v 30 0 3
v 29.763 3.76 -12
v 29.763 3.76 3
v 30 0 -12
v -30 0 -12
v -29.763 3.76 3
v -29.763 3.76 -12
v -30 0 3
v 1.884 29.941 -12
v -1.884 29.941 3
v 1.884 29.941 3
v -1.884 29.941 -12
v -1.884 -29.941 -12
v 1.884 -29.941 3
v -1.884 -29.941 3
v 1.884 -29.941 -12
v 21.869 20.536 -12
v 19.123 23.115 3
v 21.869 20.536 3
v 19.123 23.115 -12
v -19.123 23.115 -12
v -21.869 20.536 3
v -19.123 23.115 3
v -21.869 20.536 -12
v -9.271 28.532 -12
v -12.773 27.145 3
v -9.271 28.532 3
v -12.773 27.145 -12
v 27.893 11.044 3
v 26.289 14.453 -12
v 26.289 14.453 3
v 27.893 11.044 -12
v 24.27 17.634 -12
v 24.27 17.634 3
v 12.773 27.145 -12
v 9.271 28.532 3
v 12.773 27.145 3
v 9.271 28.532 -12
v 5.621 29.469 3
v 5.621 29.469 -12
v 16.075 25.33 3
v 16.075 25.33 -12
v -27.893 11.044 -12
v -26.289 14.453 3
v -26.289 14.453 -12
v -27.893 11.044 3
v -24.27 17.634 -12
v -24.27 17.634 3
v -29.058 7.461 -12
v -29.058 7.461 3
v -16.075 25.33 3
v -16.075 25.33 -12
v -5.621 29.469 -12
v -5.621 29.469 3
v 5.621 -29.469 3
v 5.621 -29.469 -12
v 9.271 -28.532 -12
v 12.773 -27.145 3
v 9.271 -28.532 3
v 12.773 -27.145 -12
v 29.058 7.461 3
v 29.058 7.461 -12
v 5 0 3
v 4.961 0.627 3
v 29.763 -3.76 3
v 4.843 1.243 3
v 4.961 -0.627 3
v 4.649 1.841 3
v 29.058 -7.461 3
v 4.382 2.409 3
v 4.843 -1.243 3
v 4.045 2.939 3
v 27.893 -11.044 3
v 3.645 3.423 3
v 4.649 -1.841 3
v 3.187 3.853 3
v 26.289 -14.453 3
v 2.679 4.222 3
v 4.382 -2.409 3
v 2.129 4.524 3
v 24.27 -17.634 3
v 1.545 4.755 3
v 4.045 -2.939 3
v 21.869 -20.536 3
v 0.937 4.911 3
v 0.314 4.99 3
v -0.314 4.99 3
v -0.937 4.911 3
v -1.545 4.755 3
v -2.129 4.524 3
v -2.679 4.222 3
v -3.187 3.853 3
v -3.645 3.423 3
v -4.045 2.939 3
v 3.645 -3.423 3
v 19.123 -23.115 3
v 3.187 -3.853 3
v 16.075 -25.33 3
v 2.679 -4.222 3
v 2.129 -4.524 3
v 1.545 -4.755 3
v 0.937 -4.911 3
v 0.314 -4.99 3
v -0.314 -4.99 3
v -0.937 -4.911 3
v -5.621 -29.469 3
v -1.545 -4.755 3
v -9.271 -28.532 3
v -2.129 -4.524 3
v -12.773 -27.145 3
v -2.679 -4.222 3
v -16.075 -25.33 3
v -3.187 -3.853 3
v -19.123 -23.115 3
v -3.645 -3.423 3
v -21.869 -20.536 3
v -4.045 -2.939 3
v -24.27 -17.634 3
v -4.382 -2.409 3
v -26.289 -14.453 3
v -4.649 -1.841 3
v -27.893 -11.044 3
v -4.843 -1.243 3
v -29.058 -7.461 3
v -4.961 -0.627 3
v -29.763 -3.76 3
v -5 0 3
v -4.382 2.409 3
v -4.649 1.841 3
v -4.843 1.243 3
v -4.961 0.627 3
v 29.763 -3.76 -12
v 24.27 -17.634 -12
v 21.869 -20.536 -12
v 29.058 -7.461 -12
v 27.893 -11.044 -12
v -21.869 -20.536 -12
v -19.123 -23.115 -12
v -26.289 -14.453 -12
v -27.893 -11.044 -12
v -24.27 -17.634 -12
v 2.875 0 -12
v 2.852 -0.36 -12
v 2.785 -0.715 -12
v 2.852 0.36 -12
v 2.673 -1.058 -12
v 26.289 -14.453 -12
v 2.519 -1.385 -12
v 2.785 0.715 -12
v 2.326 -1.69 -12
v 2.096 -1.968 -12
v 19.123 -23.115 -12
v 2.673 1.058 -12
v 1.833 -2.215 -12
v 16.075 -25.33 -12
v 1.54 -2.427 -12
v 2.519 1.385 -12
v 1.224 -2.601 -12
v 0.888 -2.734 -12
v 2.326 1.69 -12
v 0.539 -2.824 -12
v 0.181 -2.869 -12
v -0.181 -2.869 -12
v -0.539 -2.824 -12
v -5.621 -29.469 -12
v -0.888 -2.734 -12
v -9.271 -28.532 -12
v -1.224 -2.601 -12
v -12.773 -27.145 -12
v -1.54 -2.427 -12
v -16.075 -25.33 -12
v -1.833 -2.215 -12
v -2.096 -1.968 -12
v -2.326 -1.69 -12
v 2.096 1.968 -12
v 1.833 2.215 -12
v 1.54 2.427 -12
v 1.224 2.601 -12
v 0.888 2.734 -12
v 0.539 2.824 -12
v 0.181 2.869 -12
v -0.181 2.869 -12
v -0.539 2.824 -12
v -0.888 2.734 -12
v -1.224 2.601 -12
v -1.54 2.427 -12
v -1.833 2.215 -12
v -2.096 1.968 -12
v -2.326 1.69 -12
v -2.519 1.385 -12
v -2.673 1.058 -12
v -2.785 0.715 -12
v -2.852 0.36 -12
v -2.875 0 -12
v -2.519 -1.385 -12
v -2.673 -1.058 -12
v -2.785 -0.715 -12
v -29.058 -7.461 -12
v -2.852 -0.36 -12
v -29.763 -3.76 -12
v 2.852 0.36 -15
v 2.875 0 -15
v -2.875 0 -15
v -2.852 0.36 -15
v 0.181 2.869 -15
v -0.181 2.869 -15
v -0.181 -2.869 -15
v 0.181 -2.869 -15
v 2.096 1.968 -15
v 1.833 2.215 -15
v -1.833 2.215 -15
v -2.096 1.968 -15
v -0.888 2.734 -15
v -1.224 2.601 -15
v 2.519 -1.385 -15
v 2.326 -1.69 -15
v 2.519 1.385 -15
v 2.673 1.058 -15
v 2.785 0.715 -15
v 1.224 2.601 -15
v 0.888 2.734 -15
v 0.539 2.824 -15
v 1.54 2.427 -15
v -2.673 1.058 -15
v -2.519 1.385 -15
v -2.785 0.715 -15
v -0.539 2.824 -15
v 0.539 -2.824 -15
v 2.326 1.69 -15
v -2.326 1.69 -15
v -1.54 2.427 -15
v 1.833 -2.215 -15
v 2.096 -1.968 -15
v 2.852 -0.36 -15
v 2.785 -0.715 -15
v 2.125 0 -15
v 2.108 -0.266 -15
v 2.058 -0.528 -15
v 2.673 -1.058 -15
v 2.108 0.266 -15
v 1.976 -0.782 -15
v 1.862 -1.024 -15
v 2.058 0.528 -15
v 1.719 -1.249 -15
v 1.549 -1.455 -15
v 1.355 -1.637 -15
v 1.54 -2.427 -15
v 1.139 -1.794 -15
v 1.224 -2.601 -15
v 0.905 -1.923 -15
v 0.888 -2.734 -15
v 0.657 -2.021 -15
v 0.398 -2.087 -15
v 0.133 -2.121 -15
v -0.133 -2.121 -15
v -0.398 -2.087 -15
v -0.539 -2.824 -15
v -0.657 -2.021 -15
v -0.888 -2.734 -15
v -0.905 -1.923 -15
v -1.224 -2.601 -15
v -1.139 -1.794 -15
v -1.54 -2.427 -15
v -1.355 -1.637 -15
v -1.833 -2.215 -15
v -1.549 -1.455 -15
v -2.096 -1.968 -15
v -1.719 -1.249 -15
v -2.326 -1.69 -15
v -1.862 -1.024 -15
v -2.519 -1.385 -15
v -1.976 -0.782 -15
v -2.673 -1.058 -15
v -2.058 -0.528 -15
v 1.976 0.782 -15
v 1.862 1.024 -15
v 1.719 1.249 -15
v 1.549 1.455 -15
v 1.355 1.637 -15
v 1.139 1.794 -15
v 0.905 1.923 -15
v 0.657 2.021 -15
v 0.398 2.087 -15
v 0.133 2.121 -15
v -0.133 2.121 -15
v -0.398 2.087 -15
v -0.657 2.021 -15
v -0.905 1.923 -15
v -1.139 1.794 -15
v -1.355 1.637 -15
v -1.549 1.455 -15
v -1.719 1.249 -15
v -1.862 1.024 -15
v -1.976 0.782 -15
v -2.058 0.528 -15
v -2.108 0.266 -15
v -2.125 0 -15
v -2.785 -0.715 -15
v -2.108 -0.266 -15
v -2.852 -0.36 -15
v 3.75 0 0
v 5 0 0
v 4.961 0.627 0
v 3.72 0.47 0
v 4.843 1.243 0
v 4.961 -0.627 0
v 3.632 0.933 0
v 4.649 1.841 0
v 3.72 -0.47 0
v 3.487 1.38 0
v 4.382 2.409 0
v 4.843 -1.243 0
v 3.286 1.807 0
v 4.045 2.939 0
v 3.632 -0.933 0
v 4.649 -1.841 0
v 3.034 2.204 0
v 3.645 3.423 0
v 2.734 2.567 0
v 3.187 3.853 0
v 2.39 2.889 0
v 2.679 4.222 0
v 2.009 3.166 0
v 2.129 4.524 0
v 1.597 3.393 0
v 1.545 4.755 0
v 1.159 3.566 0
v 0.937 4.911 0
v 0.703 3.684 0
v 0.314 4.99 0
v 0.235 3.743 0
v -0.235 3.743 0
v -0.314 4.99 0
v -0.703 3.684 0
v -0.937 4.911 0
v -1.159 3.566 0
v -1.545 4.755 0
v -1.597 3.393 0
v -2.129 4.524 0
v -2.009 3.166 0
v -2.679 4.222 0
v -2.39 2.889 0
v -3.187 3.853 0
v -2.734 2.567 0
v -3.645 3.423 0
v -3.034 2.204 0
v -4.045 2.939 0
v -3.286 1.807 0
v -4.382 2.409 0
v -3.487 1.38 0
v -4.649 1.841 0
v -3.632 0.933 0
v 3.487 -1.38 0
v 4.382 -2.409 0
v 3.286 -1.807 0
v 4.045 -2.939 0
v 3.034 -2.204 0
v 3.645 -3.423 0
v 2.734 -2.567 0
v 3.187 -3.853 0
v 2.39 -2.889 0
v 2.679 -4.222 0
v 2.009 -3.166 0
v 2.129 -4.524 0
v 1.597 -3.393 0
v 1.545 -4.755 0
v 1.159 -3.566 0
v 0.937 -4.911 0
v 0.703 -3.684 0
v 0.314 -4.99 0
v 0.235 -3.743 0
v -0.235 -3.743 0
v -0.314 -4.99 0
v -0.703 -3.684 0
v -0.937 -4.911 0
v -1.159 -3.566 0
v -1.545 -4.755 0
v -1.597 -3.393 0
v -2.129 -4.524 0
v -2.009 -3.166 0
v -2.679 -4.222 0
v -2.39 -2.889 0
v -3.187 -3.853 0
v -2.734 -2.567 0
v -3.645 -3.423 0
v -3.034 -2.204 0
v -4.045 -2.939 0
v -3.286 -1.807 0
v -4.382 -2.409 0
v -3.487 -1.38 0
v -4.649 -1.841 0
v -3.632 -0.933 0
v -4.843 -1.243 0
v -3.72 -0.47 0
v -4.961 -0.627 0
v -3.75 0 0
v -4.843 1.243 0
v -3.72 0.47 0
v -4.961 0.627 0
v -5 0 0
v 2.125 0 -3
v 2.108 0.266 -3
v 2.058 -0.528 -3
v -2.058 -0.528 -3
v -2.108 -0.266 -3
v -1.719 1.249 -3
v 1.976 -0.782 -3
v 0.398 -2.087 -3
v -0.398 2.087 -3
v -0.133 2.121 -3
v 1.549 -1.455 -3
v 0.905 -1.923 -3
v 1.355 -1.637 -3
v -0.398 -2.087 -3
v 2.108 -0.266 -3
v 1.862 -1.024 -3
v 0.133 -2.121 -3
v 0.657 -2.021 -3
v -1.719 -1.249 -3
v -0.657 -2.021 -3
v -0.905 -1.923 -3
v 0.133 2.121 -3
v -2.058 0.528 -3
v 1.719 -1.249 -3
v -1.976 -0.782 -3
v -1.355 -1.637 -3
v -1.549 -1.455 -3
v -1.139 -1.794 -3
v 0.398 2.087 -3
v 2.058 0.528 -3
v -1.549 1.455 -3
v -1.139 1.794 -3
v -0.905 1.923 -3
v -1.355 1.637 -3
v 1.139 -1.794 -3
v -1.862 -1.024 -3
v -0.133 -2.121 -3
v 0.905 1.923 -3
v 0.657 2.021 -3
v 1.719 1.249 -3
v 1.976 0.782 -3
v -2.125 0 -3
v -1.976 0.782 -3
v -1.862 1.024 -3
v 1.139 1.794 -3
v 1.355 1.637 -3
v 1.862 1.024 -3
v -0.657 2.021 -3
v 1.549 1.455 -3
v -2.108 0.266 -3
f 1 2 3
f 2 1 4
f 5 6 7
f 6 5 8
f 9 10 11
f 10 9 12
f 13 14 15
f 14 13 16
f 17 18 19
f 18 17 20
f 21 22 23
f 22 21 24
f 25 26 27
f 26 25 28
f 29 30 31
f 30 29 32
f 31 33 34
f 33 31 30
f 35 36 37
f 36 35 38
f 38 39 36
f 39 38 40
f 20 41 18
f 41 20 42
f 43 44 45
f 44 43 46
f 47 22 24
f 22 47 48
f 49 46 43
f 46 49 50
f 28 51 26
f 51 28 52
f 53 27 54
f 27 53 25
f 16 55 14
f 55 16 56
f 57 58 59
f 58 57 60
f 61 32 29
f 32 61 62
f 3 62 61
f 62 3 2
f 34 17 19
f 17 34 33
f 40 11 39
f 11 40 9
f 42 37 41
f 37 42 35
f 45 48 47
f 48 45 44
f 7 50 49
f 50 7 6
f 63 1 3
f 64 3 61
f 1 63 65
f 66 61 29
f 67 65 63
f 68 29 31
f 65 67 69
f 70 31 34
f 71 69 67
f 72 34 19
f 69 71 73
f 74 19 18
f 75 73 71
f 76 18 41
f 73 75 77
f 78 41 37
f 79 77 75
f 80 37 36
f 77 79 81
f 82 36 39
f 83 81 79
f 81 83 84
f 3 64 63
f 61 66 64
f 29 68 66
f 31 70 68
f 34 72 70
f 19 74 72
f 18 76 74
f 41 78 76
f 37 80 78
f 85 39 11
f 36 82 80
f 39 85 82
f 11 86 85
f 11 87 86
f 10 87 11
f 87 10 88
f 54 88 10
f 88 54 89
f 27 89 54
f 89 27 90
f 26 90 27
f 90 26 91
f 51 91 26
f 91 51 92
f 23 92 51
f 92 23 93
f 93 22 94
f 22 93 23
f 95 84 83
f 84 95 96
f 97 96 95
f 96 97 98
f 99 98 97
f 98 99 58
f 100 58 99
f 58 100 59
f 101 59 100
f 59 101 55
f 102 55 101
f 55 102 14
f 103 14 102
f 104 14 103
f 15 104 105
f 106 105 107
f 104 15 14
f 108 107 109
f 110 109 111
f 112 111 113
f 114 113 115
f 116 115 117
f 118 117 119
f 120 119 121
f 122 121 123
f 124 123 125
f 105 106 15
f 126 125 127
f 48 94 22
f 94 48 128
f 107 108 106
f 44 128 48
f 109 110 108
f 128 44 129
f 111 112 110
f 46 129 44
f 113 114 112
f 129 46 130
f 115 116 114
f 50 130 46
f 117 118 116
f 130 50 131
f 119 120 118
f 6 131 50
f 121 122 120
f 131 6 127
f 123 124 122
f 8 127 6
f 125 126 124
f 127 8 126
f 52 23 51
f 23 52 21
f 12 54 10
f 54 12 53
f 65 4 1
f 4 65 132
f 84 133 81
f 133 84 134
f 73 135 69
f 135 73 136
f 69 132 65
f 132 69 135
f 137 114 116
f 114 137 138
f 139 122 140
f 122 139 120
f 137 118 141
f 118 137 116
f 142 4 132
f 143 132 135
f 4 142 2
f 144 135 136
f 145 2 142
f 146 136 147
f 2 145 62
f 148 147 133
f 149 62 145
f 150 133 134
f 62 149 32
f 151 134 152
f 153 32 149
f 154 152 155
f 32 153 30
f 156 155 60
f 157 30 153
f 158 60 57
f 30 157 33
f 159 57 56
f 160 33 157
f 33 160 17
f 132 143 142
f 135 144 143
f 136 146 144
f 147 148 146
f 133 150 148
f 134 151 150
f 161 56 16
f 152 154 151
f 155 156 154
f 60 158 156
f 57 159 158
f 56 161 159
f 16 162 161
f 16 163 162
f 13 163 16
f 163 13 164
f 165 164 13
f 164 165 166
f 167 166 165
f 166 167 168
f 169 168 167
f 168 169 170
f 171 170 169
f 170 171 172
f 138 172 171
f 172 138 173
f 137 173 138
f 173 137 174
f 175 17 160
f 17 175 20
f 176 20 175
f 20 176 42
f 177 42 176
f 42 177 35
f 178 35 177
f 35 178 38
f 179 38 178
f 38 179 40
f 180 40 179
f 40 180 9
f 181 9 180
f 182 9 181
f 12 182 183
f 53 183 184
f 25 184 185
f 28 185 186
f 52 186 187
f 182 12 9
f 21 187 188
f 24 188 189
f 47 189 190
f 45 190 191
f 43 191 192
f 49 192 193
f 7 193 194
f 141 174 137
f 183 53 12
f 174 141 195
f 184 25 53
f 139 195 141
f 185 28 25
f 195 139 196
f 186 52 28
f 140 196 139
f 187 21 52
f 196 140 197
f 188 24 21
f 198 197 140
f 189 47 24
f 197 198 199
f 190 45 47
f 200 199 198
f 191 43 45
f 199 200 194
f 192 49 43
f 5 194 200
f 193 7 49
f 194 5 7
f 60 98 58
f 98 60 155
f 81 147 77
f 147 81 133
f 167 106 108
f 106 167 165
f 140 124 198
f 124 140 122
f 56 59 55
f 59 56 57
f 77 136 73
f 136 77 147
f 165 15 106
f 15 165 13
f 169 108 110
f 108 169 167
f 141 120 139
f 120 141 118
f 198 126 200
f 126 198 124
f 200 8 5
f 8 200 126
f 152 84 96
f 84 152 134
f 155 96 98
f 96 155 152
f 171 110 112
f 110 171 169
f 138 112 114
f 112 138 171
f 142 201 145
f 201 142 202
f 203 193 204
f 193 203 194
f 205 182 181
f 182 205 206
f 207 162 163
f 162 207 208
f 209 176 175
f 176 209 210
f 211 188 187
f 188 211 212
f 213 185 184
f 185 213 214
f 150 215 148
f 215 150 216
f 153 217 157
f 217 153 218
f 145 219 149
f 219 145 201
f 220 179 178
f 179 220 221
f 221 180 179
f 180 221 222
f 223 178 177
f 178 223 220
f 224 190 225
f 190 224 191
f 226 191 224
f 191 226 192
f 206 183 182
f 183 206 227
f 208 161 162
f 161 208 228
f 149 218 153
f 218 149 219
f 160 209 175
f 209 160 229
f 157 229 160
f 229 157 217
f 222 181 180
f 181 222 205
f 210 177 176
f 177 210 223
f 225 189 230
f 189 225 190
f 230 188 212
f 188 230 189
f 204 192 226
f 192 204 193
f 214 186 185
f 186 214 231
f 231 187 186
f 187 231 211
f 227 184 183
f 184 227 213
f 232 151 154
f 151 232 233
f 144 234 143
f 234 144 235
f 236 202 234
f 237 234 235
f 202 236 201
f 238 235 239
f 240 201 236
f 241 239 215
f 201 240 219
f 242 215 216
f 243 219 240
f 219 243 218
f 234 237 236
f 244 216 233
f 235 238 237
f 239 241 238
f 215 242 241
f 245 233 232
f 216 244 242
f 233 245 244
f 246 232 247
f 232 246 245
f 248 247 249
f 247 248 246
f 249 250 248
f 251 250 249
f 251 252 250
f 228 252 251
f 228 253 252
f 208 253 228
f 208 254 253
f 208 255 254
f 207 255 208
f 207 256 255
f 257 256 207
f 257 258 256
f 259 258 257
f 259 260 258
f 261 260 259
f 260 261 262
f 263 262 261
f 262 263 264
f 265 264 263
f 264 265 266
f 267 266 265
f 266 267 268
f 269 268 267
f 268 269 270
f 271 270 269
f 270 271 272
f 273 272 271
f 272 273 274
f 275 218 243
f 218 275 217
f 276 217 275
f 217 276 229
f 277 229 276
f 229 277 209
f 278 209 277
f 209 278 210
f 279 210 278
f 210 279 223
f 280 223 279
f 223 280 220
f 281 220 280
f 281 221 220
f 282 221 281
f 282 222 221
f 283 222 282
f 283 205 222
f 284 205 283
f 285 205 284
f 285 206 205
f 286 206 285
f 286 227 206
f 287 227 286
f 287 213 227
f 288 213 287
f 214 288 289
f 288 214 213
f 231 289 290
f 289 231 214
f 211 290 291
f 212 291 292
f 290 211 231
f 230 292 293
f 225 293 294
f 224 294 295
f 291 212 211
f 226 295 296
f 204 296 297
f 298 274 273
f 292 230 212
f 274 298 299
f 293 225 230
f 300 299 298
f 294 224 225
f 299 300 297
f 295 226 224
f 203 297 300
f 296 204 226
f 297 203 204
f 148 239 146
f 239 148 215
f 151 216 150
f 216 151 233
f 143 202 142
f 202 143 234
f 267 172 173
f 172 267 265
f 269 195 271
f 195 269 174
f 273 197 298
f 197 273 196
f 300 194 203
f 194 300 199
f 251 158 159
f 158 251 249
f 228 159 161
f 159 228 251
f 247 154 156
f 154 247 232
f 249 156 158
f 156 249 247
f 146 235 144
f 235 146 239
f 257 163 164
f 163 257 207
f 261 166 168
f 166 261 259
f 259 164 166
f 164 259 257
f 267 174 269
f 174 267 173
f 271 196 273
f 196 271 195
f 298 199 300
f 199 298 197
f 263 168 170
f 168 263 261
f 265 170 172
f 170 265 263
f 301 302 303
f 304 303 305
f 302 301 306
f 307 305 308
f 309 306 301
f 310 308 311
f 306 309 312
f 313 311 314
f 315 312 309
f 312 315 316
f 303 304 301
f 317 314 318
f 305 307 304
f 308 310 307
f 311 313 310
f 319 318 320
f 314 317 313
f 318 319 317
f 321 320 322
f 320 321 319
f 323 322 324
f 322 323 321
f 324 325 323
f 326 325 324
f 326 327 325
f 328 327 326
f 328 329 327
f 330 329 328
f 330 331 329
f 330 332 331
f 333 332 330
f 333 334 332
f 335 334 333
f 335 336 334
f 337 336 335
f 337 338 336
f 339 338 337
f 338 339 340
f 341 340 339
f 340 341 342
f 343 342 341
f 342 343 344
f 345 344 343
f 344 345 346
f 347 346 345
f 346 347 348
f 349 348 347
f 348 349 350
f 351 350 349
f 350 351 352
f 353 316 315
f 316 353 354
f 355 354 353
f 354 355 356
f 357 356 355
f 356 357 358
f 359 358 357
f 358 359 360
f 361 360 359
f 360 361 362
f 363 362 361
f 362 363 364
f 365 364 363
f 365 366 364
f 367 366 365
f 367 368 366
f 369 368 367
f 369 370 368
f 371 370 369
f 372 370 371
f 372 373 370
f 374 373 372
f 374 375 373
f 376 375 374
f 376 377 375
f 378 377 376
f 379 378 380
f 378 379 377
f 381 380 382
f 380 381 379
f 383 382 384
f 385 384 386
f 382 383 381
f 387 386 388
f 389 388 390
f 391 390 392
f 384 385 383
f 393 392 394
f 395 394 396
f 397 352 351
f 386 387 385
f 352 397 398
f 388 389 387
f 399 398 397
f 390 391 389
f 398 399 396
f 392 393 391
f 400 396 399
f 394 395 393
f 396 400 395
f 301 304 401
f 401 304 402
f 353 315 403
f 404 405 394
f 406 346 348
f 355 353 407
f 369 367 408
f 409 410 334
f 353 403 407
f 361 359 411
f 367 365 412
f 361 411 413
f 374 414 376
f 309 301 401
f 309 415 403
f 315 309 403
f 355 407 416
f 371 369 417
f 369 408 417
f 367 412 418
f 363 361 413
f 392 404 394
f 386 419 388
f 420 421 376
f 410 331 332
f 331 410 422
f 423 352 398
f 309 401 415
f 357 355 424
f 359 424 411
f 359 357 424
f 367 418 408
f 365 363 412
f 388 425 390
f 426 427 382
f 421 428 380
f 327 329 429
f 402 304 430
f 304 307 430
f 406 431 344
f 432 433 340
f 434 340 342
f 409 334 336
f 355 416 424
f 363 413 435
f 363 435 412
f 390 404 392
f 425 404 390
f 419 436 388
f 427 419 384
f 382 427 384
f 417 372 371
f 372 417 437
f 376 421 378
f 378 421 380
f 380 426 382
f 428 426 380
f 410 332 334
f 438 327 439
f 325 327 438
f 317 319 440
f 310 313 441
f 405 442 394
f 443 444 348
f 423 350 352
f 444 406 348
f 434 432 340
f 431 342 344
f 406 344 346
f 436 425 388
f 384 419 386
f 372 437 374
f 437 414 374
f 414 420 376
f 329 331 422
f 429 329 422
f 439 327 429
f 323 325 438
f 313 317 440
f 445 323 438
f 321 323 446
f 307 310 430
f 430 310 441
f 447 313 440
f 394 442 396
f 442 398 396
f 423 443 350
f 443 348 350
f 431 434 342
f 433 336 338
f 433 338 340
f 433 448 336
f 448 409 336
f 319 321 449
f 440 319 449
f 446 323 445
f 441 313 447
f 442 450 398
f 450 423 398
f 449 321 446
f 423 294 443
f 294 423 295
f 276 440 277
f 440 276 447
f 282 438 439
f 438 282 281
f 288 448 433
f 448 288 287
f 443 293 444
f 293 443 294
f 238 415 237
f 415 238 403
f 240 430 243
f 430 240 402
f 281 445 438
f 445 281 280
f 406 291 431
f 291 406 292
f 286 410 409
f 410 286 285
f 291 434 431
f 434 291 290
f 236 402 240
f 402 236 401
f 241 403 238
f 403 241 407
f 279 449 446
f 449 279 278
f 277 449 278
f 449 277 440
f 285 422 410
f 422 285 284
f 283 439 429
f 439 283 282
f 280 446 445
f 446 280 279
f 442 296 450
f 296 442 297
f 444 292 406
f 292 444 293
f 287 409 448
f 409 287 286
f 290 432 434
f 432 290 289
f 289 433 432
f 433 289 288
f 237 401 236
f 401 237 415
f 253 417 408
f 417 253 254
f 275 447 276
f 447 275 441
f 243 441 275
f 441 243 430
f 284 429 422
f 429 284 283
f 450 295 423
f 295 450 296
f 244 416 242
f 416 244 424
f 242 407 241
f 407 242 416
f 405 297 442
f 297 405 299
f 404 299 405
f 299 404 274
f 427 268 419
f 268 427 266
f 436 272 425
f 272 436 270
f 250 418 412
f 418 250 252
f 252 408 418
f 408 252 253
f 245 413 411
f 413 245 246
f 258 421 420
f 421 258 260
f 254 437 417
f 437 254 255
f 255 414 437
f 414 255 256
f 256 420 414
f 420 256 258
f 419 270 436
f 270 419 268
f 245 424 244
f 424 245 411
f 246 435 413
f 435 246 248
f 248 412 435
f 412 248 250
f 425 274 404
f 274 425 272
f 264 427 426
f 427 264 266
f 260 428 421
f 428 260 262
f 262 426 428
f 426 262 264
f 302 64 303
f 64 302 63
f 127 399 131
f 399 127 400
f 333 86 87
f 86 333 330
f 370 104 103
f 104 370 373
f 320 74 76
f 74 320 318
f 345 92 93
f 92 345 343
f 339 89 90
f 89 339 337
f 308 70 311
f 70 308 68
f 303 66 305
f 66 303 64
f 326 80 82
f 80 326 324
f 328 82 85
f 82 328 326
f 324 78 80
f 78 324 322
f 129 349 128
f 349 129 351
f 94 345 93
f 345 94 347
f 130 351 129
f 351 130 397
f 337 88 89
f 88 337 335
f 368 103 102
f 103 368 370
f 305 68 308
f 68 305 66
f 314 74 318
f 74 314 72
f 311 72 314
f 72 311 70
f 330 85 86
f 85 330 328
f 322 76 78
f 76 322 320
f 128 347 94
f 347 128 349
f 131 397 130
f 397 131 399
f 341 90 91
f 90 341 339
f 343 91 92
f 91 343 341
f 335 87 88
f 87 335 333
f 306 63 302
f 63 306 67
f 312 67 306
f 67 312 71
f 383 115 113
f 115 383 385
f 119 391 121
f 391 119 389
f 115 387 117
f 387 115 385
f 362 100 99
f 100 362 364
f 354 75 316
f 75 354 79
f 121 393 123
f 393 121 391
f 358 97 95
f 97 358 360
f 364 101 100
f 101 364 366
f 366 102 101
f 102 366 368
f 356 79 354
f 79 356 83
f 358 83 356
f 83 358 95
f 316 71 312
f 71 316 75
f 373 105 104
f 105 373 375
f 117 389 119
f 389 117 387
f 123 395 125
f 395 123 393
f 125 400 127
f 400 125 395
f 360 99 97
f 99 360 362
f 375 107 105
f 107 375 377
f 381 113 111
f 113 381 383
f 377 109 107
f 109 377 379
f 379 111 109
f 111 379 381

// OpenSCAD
$fn = 50;

difference() {
	union() {
		translate(v = [0, 0, -12.0]) {
			cylinder(h = 15, r = 30.0);
		}
		#translate(v = [0, 0, -15.0]) {
			cylinder(h = 15, r = 2.875);
		}
	}
	union() {
		translate(v = [0, 0, 0]) {
			rotate(a = [0, 0, 0]) {
				difference() {
					union() {
						translate(v = [0, 0, -15.0]) {
							cylinder(h = 15, r = 2.0);
						}
						translate(v = [0, 0, -3]) {
							cylinder(h = 3, r1 = 2.125, r2 = 3.75);
						}
						translate(v = [0, 0, -15.0]) {
							cylinder(h = 15, r = 2.125);
						}
						translate(v = [0, 0, -15.0]) {
							cylinder(h = 15, r = 2.0);
						}
					}
					union();
				}
			}
		}
		#cylinder(h = 3, r = 5.0);
	}
}
